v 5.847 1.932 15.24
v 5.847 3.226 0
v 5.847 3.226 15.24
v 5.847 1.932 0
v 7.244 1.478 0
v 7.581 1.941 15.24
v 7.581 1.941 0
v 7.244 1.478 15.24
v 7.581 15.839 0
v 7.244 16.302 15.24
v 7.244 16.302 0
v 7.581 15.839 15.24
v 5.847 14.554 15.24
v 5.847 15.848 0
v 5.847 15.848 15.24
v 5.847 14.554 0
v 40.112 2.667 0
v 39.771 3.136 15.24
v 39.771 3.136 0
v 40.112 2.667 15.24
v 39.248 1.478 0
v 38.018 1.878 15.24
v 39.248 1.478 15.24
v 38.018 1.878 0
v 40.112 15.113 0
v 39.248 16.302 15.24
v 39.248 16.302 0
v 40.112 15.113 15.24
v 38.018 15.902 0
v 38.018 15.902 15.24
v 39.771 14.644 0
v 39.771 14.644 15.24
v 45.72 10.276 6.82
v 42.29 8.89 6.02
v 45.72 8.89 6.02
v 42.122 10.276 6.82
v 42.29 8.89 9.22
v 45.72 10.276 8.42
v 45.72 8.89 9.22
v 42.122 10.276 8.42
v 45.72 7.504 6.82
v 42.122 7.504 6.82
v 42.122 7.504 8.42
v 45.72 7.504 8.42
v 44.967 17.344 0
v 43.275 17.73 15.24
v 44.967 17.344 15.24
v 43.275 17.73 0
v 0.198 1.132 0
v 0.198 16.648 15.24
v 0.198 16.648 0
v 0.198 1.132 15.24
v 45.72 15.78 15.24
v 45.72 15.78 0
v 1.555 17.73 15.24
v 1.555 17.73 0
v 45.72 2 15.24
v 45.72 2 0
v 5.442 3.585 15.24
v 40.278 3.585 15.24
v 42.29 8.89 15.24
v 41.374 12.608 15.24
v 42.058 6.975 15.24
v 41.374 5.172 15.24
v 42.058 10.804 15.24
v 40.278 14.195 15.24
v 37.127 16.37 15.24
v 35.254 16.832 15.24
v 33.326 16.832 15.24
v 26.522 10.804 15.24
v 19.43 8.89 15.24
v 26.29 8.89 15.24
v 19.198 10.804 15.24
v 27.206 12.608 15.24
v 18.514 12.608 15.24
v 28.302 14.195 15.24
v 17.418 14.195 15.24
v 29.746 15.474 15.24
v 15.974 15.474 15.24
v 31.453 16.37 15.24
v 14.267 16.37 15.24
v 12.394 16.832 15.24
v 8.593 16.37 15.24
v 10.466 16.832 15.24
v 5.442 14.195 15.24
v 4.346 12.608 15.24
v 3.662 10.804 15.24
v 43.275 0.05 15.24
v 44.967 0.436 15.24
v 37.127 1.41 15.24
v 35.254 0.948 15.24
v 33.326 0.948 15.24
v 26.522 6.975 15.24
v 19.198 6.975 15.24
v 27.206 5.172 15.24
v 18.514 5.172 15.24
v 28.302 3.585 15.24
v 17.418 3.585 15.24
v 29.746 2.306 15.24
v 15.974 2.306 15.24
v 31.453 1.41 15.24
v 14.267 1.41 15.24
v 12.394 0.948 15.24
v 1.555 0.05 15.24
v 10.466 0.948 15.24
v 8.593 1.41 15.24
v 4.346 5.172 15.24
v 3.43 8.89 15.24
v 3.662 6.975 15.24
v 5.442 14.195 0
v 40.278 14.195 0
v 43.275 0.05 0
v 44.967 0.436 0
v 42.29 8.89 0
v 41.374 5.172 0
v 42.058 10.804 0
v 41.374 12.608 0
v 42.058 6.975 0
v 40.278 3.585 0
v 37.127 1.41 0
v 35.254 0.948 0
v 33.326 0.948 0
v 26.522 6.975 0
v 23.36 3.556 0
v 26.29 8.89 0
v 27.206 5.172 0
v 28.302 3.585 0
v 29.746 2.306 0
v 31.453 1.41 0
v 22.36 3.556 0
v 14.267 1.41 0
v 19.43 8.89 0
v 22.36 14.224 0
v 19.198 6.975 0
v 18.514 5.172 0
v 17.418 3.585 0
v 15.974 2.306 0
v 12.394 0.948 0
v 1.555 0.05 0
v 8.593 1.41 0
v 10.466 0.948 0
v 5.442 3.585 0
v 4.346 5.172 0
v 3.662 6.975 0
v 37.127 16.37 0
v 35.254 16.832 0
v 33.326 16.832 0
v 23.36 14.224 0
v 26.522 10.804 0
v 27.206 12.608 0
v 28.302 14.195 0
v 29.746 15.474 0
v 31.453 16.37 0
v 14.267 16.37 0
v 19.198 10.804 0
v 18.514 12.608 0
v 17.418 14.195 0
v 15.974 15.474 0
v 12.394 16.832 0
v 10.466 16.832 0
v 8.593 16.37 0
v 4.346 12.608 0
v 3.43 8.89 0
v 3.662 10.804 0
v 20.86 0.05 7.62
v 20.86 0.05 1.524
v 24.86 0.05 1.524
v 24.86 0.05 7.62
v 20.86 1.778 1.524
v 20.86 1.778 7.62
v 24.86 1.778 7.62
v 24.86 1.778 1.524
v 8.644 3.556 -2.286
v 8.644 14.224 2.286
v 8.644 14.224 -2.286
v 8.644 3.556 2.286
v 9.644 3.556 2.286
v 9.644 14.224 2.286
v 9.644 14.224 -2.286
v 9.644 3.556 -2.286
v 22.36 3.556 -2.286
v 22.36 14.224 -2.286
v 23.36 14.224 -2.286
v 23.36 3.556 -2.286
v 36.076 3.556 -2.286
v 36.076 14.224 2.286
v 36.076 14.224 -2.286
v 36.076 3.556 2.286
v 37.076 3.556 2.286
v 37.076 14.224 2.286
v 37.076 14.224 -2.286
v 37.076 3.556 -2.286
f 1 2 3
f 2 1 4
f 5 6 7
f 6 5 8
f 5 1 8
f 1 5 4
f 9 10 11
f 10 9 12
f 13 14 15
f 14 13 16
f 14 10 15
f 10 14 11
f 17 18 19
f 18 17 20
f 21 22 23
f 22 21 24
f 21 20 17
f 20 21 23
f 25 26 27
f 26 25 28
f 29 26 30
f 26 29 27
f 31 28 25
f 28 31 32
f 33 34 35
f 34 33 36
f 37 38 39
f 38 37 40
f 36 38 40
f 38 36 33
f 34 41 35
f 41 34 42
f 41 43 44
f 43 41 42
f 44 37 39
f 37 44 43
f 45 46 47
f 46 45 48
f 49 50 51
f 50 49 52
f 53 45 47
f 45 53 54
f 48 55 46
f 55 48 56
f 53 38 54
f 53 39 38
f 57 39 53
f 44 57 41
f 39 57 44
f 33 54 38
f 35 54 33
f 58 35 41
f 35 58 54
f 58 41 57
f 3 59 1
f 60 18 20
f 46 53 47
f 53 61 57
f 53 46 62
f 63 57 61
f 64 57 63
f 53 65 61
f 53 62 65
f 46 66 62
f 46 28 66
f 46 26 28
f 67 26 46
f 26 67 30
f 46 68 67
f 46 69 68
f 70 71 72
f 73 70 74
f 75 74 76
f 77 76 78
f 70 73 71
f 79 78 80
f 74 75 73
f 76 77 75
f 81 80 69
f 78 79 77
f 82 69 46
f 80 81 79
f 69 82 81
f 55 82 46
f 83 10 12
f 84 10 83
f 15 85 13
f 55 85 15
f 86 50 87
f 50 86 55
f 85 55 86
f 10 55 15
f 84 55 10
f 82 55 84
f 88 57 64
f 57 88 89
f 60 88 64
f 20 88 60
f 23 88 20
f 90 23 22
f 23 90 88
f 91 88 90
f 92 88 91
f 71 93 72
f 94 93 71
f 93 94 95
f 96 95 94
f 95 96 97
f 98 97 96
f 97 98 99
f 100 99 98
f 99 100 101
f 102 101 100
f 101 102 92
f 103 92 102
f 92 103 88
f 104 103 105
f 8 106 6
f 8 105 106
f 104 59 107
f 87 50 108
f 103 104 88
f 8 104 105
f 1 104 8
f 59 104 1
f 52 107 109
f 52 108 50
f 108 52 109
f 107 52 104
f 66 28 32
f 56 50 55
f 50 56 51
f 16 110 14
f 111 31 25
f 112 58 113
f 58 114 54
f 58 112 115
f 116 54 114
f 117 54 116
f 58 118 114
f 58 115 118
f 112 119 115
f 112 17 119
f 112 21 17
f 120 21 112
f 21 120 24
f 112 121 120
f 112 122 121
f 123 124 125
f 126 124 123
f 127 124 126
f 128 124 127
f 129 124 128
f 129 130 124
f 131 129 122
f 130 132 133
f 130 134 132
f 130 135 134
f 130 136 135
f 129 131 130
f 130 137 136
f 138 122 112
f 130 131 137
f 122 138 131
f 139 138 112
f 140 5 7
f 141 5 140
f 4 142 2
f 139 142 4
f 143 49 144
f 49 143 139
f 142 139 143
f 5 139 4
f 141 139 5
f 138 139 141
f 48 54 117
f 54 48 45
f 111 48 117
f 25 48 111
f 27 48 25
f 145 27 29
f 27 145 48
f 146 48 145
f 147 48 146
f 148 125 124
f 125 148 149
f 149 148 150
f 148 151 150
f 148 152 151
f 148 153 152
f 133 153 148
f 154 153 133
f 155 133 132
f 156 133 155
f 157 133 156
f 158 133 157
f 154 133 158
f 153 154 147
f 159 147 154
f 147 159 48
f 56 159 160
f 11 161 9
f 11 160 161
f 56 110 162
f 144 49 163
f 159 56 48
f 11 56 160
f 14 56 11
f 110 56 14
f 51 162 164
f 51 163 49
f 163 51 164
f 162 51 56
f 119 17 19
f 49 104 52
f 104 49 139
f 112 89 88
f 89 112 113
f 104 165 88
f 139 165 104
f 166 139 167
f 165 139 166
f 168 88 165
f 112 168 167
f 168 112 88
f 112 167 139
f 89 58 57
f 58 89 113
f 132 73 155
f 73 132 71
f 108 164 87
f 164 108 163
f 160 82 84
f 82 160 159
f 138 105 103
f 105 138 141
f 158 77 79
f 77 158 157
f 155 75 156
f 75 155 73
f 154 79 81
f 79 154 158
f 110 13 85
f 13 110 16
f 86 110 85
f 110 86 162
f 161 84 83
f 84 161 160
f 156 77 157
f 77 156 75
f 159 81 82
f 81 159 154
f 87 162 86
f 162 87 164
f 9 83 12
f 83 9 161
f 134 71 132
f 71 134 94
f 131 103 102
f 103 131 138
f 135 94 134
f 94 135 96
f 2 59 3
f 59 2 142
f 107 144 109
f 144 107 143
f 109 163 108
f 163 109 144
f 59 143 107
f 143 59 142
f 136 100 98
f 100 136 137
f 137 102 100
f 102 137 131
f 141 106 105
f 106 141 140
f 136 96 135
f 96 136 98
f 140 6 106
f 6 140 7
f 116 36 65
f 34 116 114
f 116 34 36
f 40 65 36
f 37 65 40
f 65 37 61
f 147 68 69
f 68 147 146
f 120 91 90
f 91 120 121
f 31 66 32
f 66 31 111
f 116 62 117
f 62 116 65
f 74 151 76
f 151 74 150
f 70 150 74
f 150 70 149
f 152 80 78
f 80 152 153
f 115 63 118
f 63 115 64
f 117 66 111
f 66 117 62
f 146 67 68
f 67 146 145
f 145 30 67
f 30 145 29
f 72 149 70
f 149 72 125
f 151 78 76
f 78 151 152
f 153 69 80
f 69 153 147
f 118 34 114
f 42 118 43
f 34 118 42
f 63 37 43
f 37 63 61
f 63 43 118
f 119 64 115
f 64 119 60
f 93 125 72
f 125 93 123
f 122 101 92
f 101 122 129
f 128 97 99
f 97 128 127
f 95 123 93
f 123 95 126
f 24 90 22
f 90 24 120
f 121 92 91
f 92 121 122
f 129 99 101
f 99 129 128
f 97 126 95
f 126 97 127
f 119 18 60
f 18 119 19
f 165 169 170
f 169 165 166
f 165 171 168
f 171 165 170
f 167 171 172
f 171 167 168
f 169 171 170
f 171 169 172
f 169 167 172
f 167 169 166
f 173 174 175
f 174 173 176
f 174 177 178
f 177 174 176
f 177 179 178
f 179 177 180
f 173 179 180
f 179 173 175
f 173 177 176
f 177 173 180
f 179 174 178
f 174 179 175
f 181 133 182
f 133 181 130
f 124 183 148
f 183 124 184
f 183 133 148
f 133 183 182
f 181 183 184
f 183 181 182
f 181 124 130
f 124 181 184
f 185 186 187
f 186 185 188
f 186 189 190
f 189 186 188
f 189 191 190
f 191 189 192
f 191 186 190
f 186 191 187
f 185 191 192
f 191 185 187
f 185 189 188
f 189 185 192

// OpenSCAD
// Goblin Nose Sensor Bracket
// Self-contained HC-SR04 mounting bracket

// HC-SR04 sensor dimensions in mm
width = 45.72;   // 1.8 inches
height = 17.78;  // 0.7 inches  
depth = 15.24;   // 0.6 inches

// Generate the sensor bracket
difference() {
    // Main bracket body with rounded edges
    hull() {
        for(x = [2, width-2]) {
            for(y = [2, height-2]) {
                translate([x, y, 0])
                    cylinder(h=depth, d=4);
            }
        }
    }
    
    // Sensor mounting holes (HC-SR04 transducers)
    translate([width*0.25, height*0.5, -1])
        cylinder(h=depth+2, d=16); // Left transducer
    translate([width*0.75, height*0.5, -1])  
        cylinder(h=depth+2, d=16); // Right transducer
        
    // Sensor PCB mounting holes
    for(i = [0:1]) {
        translate([width*0.15 + i*width*0.7, height*0.15, -1])
            cylinder(h=depth+2, d=2.5);
        translate([width*0.15 + i*width*0.7, height*0.85, -1])
            cylinder(h=depth+2, d=2.5);
    }
    
    // Case mounting holes (M3 screws)  
    for(i = [0:1]) {
        translate([width*0.1 + i*width*0.8, height*0.5, depth*0.5])
            rotate([0, 90, 0])
                cylinder(h=width*0.15, d=3.2);
    }
    
    // Wire management slot
    translate([width*0.5, 0, depth*0.3])
        cube([4, height*0.2, depth*0.4], center=true);
}

// Reinforcement ribs
for(i = [0:2]) {
    translate([width*0.2 + i*width*0.3, height*0.5, 0])
        cube([1, height*0.6, depth*0.3], center=true);
}
